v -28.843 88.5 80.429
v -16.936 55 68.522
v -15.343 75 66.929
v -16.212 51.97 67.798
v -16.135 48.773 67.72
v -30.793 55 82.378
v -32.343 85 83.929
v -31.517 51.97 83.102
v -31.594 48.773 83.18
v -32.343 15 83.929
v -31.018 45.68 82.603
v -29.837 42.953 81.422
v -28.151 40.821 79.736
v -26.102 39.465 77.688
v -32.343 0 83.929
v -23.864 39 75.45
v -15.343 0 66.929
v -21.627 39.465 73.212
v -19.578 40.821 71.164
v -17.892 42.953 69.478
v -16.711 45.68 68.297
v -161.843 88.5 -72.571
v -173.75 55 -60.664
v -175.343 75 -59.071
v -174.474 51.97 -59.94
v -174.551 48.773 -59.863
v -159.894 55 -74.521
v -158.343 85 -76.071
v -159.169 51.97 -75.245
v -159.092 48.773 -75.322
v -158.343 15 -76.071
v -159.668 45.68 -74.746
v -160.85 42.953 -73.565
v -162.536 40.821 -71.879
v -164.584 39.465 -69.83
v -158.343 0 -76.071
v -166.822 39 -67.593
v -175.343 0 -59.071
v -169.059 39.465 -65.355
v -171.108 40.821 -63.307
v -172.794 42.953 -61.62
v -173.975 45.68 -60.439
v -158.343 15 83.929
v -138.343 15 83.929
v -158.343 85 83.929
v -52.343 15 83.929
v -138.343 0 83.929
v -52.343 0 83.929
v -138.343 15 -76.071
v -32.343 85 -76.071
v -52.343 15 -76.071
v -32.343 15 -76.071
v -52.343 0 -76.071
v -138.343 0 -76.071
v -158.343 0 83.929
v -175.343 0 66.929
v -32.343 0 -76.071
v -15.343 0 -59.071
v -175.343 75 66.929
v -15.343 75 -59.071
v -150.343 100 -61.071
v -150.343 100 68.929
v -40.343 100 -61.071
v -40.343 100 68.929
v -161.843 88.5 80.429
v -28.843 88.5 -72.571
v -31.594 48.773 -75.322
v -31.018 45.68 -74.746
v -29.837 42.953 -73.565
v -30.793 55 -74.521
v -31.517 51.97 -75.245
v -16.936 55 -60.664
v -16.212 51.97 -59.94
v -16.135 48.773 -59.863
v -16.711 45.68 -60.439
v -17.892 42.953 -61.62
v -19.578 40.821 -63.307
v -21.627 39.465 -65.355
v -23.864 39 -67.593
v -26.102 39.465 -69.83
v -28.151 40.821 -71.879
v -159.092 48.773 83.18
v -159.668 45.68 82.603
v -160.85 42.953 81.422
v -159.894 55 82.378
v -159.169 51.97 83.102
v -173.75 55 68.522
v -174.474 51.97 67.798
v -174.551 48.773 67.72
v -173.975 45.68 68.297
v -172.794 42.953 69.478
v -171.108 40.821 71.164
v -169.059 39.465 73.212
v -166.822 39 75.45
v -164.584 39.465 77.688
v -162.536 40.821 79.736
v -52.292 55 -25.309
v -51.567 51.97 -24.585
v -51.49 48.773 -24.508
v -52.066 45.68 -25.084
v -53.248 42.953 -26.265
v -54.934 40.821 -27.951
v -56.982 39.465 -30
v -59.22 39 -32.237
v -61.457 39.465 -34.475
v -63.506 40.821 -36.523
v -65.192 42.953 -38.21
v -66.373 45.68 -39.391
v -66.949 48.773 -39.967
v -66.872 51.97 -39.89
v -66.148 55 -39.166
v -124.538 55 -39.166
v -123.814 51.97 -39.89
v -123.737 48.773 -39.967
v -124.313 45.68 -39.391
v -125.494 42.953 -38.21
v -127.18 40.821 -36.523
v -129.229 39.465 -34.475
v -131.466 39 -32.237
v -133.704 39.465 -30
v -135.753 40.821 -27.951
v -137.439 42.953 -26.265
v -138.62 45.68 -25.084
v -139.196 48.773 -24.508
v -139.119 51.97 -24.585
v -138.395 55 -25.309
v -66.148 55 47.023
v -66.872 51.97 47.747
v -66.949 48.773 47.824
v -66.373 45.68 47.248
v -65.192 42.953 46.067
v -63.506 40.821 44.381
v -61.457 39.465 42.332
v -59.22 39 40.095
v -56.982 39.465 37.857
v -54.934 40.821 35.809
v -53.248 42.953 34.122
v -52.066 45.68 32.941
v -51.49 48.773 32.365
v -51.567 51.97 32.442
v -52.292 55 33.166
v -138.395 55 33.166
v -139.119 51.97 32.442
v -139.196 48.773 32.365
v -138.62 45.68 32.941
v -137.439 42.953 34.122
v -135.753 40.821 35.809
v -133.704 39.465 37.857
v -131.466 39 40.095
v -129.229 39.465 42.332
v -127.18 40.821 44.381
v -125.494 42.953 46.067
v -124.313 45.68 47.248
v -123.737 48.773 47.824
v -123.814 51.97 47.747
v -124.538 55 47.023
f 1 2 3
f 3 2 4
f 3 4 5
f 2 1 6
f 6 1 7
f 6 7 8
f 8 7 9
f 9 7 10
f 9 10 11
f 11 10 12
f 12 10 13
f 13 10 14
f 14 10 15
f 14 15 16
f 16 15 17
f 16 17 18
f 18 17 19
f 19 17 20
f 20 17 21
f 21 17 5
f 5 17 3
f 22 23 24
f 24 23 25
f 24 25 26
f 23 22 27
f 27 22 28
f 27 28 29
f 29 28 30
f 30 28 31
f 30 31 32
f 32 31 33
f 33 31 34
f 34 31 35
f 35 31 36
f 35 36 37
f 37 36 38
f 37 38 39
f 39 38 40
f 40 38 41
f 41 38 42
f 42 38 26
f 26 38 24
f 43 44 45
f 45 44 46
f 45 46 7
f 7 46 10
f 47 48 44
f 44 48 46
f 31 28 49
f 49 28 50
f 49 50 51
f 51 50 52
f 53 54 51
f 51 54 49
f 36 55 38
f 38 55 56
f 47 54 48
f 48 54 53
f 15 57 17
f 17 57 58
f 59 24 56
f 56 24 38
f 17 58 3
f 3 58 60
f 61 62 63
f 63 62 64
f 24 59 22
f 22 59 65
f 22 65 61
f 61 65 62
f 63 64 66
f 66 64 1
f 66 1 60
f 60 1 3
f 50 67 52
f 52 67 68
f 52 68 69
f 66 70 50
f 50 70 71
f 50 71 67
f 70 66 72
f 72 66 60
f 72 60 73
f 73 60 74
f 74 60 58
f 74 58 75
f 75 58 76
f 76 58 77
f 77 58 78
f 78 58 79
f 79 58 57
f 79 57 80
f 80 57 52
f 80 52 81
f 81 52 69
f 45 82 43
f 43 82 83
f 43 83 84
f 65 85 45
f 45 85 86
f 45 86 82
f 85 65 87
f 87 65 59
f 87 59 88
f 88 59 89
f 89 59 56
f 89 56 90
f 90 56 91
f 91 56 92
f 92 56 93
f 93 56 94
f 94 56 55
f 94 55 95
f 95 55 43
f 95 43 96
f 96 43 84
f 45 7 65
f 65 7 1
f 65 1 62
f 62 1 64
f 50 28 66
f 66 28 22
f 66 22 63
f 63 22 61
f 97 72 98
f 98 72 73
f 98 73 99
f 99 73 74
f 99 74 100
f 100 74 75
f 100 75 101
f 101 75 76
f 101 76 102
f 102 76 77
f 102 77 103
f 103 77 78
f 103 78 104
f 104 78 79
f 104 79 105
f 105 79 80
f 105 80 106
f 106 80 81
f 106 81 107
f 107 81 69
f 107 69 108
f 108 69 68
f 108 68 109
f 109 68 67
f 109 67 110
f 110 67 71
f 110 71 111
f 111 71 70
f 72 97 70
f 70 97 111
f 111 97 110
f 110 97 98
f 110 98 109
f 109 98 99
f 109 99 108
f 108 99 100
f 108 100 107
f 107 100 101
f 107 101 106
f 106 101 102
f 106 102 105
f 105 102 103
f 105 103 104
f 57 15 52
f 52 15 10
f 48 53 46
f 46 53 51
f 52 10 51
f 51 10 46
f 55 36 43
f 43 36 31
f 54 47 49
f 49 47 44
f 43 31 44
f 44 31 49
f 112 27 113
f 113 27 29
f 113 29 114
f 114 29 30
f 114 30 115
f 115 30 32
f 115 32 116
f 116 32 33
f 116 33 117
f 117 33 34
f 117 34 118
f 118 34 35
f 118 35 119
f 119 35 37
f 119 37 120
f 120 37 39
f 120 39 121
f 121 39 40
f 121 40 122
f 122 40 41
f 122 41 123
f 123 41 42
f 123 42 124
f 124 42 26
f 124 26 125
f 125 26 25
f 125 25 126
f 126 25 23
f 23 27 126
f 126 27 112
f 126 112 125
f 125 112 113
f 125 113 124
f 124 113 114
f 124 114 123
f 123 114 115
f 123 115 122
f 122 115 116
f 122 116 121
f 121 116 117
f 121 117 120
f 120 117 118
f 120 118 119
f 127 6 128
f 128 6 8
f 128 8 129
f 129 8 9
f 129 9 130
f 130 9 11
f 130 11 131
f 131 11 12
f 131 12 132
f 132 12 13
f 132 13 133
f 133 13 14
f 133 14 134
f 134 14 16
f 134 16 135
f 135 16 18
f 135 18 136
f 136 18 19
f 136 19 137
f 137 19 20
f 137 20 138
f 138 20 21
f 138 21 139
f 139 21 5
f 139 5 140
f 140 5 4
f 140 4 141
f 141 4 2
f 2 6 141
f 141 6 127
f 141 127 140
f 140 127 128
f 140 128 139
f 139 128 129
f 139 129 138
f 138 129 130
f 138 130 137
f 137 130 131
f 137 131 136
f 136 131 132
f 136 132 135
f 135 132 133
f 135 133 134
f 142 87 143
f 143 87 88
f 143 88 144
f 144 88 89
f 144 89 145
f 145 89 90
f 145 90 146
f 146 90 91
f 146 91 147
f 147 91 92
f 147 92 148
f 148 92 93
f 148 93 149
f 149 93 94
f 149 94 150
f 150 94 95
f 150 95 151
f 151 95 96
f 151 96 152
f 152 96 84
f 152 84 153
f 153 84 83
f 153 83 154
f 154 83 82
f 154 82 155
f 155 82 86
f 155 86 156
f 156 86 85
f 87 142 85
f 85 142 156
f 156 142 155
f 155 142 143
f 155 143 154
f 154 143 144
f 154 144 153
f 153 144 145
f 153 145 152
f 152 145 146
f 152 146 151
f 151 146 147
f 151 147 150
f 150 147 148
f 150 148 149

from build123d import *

# Parameters (mm, degrees)
SKETCH1_W                                = 160
SKETCH1_H                                = 160
BOSS_EXTRUDE1_DEPTH                      = 100
CHAMFER1_SIZE                            = 25
CHAMFER2_SIZE                            = 17
CHAMFER3_SIZE                            = 15
CUT_EXTRUDE1_DEPTH                       = 50
SKETCH3_W                                = 20
SKETCH3_H                                = 160
CUT_EXTRUDE2_DEPTH                       = 15
MIRROR1_AT_THE_SECOND_PLANE_COPY_1_DEPTH = 50


with BuildPart() as part:
    # Sketch1 → Boss-Extrude1 (new body)
    with BuildSketch(Plane(origin=(0, 0, 0), x_dir=(1, 0, 0), z_dir=(0, 1, 0))):
        with Locations((-95.343060511, -3.92868134)):
            Rectangle(SKETCH1_W, SKETCH1_H)
    extrude(amount=BOSS_EXTRUDE1_DEPTH)

    # Chamfer1
    chamfer1_edges = [part.edges().sort_by_distance(p)[0] for p in [
        (-15.343060511, 100, 3.92868134),
        (-175.343060511, 100, 3.92868134),
    ]]
    chamfer(chamfer1_edges, length=CHAMFER1_SIZE)

    # Chamfer2
    chamfer2_edges = [part.edges().sort_by_distance(p)[0] for p in [
        (-15.343060511, 37.5, 83.92868134),
        (-175.343060511, 37.5, 83.92868134),
        (-175.343060511, 37.5, -76.07131866),
        (-15.343060511, 37.5, -76.07131866),
    ]]
    chamfer(chamfer2_edges, length=CHAMFER2_SIZE)

    # Chamfer3
    chamfer3_edges = [part.edges().sort_by_distance(p)[0] for p in [
        (-95.343060511, 100, 83.92868134),
        (-95.343060511, 100, -76.07131866),
    ]]
    chamfer(chamfer3_edges, length=CHAMFER3_SIZE)

    # Sketch2 → Cut-Extrude1 (cut)
    with BuildSketch(Plane(origin=(21.864129074, 0, -21.864129074), x_dir=(-0.7071067811865471, 0, -0.7071067811865479), z_dir=(0.7071067811865479, 0, -0.7071067811865471))):
        with BuildLine():
            ThreePointArc((75.669890857, 50), (75.36515964, 52.571230378), (74.467849828, 55))
            Line((74.467849828, 55), (64.669890857, 55))
            Line((64.669890857, 55), (54.871931886, 55))
            ThreePointArc((54.871931886, 55), (62.098660479, 39.304731217), (75.669890857, 50))
        make_face()
    cut_extrude1 = extrude(amount=-CUT_EXTRUDE1_DEPTH, mode=Mode.SUBTRACT)

    # Sketch3 → Cut-Extrude2 (cut)
    with BuildSketch(Plane.XZ):
        with Locations((-148.343060511, 3.92868134)):
            Rectangle(SKETCH3_W, SKETCH3_H)
        with Locations((-42.343060511, 3.92868134)):
            Rectangle(SKETCH3_W, SKETCH3_H)
    extrude(amount=-CUT_EXTRUDE2_DEPTH, mode=Mode.SUBTRACT)

    # Mirror1: Cut-Extrude1 across plane
    add(cut_extrude1.mirror(Plane(origin=(0, 0, 3.92868134), x_dir=(1, 0, 0), z_dir=(0, 0, -1))), mode=Mode.SUBTRACT)

    # Mirror1 at the second plane: Cut-Extrude1 across plane
    add(cut_extrude1.mirror(Plane.ZY.offset(95.343060511)), mode=Mode.SUBTRACT)

    # Mirror1 at the second plane copy 1 sketc → Mirror1 at the second plane copy 1 (cut)
    with BuildSketch(Plane(origin=(-212.550250097, 0, 29.721491754), x_dir=(0.7071067811865474, 0, 0.7071067811865477), z_dir=(-0.7071067811865477, 0, 0.7071067811865474))):
        with BuildLine():
            ThreePointArc((75.669890857, 50), (75.36515964, 52.571230378), (74.467849828, 55))
            Line((74.467849828, 55), (64.669890857, 55))
            Line((64.669890857, 55), (54.871931886, 55))
            ThreePointArc((54.871931886, 55), (62.098660479, 39.304731217), (75.669890857, 50))
        make_face()
    extrude(amount=-MIRROR1_AT_THE_SECOND_PLANE_COPY_1_DEPTH, mode=Mode.SUBTRACT)


solid = part.part
